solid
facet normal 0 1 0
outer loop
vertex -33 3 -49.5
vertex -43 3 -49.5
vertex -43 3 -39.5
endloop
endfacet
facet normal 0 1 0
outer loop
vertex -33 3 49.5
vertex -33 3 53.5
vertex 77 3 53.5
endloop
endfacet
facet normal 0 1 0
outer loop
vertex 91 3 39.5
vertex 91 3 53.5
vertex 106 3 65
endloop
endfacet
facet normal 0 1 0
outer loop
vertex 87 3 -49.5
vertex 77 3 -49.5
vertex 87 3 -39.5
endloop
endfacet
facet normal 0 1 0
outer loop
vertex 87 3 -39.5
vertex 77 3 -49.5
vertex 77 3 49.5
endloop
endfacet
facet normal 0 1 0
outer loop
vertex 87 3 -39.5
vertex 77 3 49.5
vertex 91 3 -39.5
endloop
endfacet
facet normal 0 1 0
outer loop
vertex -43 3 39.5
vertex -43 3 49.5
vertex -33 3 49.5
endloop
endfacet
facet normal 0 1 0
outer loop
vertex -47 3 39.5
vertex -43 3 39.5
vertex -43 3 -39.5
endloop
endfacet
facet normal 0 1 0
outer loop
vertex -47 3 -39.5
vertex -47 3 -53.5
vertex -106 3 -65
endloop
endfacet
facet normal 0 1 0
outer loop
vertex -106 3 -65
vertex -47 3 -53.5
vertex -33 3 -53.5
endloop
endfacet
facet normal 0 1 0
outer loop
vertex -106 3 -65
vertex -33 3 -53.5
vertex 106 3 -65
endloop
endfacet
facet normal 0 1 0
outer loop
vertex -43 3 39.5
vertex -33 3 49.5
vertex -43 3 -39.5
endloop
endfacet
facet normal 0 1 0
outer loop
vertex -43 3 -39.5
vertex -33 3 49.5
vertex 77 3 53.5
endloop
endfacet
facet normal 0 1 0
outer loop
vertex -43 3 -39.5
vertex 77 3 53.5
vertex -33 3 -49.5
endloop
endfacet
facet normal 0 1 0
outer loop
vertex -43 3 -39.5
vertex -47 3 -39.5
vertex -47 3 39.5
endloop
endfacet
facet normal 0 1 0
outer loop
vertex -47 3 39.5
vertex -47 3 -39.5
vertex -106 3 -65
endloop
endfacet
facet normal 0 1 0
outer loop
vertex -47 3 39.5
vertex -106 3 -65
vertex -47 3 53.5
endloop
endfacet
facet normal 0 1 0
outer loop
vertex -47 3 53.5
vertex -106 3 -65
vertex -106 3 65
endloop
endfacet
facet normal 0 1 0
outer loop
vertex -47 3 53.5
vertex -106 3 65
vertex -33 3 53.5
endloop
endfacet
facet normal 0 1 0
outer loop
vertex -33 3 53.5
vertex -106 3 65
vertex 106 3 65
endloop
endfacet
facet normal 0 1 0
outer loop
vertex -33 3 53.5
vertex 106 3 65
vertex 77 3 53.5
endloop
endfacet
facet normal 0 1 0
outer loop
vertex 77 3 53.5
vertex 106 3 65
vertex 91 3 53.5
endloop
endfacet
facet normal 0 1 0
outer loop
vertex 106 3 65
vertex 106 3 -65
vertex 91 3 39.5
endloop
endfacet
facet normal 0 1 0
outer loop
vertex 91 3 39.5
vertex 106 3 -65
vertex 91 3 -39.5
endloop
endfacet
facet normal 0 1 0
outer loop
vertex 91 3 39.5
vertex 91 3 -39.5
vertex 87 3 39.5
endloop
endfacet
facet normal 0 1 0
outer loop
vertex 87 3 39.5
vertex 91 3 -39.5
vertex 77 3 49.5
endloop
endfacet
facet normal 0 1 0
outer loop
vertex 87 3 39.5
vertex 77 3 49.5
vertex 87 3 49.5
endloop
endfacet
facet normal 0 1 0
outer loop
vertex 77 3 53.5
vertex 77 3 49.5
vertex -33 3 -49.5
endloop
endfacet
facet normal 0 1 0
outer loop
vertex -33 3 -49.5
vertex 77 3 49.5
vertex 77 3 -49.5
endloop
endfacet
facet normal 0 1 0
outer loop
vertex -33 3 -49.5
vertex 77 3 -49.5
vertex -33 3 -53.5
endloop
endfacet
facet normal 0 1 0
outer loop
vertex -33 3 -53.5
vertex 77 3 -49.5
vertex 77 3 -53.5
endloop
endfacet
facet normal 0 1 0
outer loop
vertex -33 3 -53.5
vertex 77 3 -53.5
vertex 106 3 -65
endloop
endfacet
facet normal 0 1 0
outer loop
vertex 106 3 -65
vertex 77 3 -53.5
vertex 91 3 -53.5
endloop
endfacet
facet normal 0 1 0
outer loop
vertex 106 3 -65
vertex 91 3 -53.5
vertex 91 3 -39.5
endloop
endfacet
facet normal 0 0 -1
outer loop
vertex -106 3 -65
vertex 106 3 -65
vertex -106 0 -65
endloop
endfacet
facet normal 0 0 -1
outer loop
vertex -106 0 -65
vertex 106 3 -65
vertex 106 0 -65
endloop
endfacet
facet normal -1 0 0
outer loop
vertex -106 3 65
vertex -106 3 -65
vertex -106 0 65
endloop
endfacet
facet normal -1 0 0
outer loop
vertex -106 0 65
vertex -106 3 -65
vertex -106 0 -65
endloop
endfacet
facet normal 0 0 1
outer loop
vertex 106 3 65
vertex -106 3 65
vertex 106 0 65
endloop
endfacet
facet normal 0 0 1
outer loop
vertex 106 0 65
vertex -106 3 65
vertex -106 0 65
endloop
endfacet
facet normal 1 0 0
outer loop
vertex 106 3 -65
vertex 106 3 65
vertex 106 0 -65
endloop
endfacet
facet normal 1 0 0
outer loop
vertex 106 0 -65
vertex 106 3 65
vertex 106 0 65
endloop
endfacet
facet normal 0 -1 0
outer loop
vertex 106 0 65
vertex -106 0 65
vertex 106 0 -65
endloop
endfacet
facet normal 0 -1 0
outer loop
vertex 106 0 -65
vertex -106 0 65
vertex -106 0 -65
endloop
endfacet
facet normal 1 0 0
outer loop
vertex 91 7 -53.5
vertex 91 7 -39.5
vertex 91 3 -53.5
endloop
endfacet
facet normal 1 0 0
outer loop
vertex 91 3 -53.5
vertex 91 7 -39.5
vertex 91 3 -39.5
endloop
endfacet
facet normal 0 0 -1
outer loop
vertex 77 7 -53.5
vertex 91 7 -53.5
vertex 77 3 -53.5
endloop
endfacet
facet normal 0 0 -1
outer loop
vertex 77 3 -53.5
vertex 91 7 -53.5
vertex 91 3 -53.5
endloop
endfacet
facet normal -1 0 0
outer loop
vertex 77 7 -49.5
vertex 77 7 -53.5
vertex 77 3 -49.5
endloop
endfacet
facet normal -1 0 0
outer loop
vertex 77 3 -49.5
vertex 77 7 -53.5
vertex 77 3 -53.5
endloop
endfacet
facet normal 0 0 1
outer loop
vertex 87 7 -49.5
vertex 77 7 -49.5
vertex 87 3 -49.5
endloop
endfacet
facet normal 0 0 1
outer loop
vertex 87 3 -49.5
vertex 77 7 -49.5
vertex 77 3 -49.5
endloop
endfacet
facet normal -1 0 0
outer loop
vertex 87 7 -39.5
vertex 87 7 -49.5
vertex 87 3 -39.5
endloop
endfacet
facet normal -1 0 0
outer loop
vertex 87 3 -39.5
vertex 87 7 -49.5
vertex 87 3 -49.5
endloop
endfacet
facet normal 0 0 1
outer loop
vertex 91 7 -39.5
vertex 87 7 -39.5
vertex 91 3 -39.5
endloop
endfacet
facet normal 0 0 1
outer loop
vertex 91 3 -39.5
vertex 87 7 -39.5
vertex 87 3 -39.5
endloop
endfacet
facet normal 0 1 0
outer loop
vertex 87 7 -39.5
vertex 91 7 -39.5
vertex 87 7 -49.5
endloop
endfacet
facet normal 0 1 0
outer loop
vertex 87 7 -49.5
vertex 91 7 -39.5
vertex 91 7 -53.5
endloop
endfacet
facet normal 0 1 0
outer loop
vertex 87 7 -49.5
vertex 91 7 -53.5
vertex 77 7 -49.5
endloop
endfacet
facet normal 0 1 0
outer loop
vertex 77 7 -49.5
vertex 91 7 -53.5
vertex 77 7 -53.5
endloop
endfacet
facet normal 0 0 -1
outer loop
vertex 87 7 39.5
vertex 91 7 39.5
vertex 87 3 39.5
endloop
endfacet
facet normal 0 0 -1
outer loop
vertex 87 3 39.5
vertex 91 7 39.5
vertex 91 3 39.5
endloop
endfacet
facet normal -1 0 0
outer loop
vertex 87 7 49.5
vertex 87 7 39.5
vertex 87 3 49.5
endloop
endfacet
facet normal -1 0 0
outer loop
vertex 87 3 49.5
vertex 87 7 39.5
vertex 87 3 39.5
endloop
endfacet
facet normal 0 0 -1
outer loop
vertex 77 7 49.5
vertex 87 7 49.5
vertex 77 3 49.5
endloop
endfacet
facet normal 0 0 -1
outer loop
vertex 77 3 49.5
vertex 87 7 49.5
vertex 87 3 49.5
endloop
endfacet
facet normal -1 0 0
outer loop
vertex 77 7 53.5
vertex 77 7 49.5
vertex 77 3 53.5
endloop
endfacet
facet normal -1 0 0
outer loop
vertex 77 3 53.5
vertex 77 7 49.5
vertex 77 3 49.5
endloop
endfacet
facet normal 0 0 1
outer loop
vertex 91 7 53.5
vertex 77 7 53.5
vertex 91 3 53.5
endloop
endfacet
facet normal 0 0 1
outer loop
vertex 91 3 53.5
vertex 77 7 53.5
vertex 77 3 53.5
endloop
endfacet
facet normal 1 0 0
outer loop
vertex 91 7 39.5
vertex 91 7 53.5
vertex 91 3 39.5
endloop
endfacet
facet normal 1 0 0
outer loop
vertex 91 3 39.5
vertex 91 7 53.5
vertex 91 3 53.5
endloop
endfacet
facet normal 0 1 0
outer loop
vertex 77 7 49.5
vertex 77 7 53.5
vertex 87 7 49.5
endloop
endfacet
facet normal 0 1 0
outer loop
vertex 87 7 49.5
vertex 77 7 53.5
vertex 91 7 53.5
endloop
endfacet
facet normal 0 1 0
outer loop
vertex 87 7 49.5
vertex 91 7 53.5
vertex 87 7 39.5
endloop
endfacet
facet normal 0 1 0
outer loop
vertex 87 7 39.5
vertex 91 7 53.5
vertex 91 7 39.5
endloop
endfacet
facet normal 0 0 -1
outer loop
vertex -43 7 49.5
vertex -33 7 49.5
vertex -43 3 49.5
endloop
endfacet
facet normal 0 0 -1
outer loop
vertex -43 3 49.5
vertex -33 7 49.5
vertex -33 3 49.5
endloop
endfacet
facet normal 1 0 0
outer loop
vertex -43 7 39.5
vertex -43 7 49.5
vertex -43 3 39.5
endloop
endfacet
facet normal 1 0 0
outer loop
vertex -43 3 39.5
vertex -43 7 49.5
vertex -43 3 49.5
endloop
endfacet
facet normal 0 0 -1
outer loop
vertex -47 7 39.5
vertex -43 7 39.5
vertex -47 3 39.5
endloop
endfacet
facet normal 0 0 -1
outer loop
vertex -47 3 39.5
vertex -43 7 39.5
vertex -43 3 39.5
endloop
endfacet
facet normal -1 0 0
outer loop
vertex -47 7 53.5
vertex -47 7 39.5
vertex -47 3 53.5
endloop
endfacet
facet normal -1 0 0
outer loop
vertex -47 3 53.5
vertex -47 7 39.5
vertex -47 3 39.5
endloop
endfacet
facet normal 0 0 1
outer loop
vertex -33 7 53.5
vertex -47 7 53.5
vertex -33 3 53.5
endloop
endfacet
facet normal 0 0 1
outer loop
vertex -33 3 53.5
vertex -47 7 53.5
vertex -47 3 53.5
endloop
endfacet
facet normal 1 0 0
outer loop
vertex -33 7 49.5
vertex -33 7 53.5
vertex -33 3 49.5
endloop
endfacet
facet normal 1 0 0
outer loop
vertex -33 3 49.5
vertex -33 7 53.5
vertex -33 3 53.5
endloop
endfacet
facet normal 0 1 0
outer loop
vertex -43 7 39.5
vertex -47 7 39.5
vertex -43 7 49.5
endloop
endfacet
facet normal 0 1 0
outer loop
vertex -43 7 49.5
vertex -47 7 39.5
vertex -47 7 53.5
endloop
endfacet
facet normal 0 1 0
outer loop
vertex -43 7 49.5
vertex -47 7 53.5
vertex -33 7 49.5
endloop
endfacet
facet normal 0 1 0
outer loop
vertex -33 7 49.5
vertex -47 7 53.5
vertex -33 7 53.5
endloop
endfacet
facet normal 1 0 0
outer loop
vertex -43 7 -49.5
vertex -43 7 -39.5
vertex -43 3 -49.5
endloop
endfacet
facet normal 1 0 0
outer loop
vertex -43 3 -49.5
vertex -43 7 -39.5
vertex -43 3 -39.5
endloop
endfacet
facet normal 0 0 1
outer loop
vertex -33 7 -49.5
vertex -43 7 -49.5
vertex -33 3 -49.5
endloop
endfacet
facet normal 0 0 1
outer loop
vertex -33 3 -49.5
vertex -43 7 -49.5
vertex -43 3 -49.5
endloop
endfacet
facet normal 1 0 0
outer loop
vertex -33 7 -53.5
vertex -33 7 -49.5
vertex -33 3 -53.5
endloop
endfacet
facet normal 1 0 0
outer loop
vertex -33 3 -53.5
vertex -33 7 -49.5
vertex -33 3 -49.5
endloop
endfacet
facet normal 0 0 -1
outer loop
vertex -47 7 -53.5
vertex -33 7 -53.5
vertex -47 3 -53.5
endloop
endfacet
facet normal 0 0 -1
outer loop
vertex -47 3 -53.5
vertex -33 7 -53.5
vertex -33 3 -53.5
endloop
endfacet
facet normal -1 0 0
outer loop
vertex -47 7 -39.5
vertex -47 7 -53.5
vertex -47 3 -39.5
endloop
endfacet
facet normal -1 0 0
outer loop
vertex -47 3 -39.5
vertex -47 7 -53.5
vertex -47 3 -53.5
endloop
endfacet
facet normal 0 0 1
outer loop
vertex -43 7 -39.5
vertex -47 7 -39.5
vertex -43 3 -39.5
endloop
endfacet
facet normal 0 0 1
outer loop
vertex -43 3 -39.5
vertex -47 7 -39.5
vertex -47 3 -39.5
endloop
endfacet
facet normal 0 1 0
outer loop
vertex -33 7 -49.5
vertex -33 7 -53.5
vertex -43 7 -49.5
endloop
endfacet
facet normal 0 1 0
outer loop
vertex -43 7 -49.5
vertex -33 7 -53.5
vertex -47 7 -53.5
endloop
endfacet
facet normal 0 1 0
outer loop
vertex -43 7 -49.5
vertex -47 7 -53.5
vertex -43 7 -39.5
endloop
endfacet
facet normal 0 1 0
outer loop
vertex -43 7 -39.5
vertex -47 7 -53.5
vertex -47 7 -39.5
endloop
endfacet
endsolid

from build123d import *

# Parameters (mm, degrees)
SKETCH2_W           = 212
SKETCH2_H           = 130
BOSS_EXTRUDE1_DEPTH = 3
BOSS_EXTRUDE2_DEPTH = 4


with BuildPart() as part:
    # Sketch2 → Boss-Extrude1 (new body)
    with BuildSketch(Plane(origin=(0, 0, 0), x_dir=(1, 0, 0), z_dir=(0, 1, 0))):
        Rectangle(SKETCH2_W, SKETCH2_H)
    extrude(amount=BOSS_EXTRUDE1_DEPTH)

    # Sketch3 → Boss-Extrude2 (add)
    with BuildSketch(Plane(origin=(0, 3, 0), x_dir=(1, 0, 0), z_dir=(0, 1, 0))):
        Polygon((91, 53.5), (77, 53.5), (77, 49.5), (87, 49.5), (87, 39.5), (91, 39.5), align=None)
        Polygon((91, -39.5), (91, -53.5), (77, -53.5), (77, -49.5), (87, -49.5), (87, -39.5), align=None)
        Polygon((-43, -49.5), (-43, -39.5), (-47, -39.5), (-47, -53.5), (-33, -53.5), (-33, -49.5), align=None)
        Polygon((-43, 39.5), (-47, 39.5), (-47, 53.5), (-33, 53.5), (-33, 49.5), (-43, 49.5), align=None)
    extrude(amount=BOSS_EXTRUDE2_DEPTH)


solid = part.part
